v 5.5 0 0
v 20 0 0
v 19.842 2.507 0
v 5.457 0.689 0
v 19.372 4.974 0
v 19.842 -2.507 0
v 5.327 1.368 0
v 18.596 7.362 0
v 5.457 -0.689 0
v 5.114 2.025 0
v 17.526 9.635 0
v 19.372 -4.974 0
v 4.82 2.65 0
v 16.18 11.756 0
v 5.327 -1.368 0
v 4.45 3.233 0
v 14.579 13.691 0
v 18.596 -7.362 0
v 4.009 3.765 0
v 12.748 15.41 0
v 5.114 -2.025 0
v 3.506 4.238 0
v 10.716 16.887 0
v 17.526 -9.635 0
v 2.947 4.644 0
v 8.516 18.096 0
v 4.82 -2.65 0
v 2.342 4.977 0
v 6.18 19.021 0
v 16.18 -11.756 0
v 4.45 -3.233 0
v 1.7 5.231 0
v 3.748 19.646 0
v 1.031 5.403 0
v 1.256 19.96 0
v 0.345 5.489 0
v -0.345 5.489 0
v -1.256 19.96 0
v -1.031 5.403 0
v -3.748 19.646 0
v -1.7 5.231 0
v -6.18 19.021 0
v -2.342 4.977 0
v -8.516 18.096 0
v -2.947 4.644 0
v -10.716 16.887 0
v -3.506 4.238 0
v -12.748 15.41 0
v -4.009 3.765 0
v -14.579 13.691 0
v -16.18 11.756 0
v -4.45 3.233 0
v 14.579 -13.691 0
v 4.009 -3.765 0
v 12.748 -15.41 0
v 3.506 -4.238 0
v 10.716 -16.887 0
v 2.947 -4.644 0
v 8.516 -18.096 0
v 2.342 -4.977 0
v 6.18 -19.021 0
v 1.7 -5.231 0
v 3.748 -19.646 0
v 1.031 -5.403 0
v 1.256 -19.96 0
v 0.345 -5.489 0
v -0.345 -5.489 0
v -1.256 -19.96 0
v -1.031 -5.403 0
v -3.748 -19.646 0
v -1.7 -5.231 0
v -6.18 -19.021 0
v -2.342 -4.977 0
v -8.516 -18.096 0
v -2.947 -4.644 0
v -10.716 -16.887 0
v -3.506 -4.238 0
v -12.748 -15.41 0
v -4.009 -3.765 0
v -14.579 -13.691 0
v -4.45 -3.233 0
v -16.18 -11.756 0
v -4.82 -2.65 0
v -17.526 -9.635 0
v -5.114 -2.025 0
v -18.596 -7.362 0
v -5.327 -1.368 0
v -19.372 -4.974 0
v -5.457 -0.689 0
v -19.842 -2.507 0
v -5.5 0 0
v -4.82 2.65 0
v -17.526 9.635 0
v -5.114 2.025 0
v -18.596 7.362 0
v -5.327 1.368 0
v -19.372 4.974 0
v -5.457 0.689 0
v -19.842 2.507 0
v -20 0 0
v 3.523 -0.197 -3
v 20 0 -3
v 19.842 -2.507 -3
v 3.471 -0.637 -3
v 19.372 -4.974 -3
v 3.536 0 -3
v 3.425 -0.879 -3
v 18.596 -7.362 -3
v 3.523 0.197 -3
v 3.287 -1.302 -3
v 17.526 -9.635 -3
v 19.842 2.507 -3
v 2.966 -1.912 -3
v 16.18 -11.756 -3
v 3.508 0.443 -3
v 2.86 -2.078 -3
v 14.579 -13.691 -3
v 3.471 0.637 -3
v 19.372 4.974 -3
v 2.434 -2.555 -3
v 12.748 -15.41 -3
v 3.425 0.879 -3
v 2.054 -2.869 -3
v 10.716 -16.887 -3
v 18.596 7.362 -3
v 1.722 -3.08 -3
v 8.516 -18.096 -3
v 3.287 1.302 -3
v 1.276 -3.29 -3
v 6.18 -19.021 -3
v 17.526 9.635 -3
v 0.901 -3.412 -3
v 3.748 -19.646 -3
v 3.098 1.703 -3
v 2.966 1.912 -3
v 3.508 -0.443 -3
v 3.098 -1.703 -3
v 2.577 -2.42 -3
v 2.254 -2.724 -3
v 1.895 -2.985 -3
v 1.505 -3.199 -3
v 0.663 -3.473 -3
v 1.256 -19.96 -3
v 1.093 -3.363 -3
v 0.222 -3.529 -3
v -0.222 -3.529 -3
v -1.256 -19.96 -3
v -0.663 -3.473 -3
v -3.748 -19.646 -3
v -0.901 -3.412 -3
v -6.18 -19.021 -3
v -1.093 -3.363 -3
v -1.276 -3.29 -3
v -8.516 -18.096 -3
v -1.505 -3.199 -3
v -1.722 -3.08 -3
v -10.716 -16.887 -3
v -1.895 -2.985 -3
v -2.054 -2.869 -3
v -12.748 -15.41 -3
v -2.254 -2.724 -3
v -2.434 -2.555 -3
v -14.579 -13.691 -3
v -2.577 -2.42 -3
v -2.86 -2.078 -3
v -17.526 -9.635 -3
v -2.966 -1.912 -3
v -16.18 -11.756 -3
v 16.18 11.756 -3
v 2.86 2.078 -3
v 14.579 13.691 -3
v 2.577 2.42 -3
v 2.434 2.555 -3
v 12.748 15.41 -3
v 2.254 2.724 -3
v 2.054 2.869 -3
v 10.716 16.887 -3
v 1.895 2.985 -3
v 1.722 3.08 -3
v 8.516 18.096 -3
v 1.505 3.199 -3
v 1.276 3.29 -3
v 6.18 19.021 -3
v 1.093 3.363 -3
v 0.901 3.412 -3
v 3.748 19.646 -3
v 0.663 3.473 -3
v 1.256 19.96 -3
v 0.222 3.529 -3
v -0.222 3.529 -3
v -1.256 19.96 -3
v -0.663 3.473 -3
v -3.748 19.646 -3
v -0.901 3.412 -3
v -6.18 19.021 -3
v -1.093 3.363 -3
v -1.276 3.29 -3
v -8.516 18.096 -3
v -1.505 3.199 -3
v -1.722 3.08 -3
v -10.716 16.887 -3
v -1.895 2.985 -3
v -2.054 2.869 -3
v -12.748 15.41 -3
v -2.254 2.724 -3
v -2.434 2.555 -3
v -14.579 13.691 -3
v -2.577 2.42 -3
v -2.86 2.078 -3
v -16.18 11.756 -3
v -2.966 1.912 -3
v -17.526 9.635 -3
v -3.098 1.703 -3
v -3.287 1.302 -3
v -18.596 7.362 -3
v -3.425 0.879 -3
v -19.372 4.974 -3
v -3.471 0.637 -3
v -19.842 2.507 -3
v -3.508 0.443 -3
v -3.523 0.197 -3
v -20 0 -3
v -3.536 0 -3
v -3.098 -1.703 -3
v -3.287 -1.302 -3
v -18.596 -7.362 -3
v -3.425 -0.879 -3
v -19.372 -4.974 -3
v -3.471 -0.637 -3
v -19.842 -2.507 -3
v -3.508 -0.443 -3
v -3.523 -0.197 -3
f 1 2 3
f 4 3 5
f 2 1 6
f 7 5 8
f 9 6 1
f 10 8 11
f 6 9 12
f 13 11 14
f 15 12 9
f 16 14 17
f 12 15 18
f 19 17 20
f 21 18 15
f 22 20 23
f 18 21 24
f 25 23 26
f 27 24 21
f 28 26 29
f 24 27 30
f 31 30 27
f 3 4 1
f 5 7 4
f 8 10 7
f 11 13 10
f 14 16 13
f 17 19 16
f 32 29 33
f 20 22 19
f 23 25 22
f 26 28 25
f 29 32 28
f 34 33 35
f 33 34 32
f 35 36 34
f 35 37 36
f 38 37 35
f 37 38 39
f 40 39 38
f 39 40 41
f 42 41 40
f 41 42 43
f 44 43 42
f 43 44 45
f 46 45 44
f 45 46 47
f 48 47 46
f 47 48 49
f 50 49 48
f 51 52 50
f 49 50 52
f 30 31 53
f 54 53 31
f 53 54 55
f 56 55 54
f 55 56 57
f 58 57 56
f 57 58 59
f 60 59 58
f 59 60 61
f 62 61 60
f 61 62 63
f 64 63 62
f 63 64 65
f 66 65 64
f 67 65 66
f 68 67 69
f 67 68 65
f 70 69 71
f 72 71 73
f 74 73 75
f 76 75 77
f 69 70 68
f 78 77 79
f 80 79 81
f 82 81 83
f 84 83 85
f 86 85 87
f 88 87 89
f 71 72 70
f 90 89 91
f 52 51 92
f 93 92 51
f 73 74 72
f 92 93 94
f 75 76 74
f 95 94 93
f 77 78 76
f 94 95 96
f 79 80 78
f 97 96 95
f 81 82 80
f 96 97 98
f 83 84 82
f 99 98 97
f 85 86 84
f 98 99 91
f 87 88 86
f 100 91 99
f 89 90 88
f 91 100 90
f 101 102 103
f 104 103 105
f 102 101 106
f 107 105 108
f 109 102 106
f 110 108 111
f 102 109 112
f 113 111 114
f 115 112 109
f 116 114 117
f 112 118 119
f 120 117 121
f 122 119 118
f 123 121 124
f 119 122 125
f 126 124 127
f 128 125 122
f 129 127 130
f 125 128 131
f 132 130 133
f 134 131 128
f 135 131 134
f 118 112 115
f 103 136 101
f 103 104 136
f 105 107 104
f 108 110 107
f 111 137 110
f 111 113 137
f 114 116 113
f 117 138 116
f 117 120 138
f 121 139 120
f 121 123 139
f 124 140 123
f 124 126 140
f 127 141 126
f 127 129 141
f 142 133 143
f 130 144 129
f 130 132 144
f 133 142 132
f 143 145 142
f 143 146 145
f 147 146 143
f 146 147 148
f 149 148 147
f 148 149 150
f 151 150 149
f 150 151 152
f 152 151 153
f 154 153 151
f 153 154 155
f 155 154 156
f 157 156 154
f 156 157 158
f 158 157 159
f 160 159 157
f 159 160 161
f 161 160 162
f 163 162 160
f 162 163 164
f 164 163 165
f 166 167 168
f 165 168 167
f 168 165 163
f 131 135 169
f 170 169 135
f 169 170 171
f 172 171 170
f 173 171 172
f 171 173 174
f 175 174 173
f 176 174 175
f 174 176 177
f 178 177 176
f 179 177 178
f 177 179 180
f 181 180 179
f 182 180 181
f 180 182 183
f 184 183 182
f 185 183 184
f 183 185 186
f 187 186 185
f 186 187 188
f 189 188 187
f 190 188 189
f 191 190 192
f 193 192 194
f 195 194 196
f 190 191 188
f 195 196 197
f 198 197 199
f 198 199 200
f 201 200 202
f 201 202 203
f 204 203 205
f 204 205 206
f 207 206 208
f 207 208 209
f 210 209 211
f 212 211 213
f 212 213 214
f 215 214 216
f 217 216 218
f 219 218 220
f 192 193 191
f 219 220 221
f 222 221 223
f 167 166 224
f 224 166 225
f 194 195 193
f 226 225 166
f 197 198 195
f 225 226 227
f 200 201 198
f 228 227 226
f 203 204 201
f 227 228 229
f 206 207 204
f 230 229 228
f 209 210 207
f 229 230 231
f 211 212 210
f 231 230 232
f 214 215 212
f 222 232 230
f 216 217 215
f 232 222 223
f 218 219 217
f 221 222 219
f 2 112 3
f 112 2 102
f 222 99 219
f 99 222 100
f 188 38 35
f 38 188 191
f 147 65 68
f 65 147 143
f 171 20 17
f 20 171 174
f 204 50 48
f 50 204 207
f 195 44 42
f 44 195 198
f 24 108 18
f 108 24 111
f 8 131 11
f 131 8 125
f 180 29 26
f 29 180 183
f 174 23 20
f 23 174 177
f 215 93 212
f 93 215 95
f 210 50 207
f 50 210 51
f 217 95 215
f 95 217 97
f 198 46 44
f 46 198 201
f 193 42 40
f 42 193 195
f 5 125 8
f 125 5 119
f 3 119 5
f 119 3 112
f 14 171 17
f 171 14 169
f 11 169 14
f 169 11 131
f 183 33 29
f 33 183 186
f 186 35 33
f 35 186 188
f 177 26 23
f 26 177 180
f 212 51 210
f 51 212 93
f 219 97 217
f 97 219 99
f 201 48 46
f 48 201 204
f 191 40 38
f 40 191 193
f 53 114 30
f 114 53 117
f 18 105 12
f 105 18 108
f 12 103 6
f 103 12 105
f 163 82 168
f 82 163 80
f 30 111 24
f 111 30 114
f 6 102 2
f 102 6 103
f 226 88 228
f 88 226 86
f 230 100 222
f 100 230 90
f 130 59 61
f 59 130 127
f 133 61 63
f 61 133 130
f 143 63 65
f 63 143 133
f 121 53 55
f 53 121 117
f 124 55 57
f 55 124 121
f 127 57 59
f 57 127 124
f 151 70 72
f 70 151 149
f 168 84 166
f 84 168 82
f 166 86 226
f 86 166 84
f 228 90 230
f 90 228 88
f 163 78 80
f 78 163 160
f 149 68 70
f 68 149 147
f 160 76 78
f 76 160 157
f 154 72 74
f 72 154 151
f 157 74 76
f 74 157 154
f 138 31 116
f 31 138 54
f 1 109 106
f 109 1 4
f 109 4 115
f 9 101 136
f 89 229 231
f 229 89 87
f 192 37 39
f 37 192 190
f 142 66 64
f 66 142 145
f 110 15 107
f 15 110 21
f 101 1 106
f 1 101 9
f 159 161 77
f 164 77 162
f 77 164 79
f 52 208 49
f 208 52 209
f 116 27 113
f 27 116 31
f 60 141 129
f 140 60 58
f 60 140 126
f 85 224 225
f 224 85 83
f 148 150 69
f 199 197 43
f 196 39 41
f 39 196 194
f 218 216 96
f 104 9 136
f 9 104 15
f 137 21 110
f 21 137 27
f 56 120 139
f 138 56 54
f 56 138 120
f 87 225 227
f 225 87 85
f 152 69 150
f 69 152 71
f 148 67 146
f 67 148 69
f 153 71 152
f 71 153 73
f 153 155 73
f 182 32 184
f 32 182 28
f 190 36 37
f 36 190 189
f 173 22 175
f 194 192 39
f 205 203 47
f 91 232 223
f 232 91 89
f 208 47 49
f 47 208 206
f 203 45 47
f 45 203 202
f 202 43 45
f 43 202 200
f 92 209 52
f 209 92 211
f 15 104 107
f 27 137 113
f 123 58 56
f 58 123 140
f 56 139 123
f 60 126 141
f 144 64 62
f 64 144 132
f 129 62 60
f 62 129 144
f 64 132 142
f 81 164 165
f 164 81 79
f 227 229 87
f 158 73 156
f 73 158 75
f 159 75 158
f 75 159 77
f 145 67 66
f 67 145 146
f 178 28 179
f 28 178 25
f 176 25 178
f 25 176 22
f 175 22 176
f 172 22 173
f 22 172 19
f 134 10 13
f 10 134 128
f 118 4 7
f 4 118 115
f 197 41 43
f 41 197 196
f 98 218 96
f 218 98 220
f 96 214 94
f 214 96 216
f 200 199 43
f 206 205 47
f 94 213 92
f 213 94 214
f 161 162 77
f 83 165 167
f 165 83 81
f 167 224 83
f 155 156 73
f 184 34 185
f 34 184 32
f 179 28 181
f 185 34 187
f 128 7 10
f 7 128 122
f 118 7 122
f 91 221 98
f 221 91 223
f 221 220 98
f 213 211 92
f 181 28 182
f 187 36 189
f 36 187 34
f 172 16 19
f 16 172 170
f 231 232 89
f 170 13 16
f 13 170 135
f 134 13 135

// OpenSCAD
$fn = 50;


difference() {
	union() {
		translate(v = [0, 0, -3.0000000000]) {
			cylinder(h = 3, r = 10.0000000000);
		}
		translate(v = [0, 0, -3.0000000000]) {
			cylinder(h = 3, r = 20.0000000000);
		}
	}
	union() {
		translate(v = [0, 0, 0]) {
			rotate(a = [0, 0, 0]) {
				difference() {
					union() {
						#translate(v = [0, 0, -3.0000000000]) {
							cylinder(h = 3, r = 2.2500000000);
						}
						#translate(v = [0, 0, -4.2000000000]) {
							cylinder(h = 4.2000000000, r1 = 2.7500000000, r2 = 5.5000000000);
						}
						#translate(v = [0, 0, -3.0000000000]) {
							cylinder(h = 3, r = 2.7500000000);
						}
						#translate(v = [0, 0, -3.0000000000]) {
							cylinder(h = 3, r = 2.2500000000);
						}
					}
					union();
				}
			}
		}
	}
}
